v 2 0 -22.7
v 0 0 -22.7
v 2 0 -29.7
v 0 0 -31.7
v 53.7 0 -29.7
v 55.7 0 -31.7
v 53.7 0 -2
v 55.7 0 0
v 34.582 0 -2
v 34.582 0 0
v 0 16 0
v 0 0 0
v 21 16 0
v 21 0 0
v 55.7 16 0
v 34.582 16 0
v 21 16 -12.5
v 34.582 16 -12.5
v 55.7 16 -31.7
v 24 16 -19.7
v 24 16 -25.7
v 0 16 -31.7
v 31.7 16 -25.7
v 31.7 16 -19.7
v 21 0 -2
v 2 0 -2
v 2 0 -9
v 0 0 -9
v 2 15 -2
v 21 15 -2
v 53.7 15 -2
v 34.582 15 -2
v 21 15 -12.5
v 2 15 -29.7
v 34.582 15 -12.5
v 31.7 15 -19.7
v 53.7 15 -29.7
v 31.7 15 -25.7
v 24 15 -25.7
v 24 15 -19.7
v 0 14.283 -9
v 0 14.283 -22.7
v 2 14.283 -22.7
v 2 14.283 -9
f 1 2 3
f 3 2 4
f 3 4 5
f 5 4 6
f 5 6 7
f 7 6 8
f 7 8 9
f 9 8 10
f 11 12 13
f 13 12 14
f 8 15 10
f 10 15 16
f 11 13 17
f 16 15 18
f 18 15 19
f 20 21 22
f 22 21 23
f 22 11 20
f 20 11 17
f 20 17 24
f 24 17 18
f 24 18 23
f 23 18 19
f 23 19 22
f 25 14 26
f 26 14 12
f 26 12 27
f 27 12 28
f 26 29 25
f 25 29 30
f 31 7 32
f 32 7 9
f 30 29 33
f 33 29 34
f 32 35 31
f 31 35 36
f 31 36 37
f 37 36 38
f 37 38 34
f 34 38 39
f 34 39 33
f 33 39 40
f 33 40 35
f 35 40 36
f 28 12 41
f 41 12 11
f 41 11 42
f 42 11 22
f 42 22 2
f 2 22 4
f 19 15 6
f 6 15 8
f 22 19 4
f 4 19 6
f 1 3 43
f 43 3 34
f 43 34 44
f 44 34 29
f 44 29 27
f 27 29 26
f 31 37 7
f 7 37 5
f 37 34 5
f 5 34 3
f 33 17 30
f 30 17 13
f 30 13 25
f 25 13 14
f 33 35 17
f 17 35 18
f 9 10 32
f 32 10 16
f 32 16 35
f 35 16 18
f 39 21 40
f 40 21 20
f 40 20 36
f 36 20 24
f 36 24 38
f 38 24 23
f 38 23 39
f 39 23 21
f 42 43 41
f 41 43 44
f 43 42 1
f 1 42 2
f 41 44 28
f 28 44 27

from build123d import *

# Parameters (mm, degrees)
SKETCH1_W           = 55.7
SKETCH1_H           = 31.7
BOSS_EXTRUDE1_DEPTH = 16
SKETCH3_W           = 51.7
SKETCH3_H           = 27.7
CUT_EXTRUDE2_DEPTH  = 15
CUT_EXTRUDE3_START  = -5
SKETCH4_W           = 13.581579568
SKETCH4_H           = 13.316801047
CUT_EXTRUDE3_DEPTH  = 21
SKETCH5_W           = 7.7
SKETCH5_H           = 6
CUT_EXTRUDE4_DEPTH  = 10
SKETCH7_W           = 13.7
SKETCH7_H           = 14.99631632
CUT_EXTRUDE5_DEPTH  = 10


with BuildPart() as part:
    # Sketch1 → Boss-Extrude1 (new body)
    with BuildSketch(Plane(origin=(0, 0, 0), x_dir=(1, 0, 0), z_dir=(0, 1, 0))):
        with Locations((27.85, 15.85)):
            Rectangle(SKETCH1_W, SKETCH1_H)
    extrude(amount=BOSS_EXTRUDE1_DEPTH)

    # Sketch3 → Cut-Extrude2 (cut)
    with BuildSketch(Plane.XZ):
        with Locations((27.85, -15.85)):
            Rectangle(SKETCH3_W, SKETCH3_H)
    extrude(amount=-CUT_EXTRUDE2_DEPTH, mode=Mode.SUBTRACT)

    # Sketch4 → Cut-Extrude3 (cut, through all)
    with BuildSketch(Plane.XZ.offset(-15).offset(CUT_EXTRUDE3_START)):
        with Locations((27.790789784, -5.841599476)):
            Rectangle(SKETCH4_W, SKETCH4_H)
    extrude(amount=CUT_EXTRUDE3_DEPTH, mode=Mode.SUBTRACT)

    # Sketch5 → Cut-Extrude4 (cut)
    with BuildSketch(Plane.XZ.offset(-15)):
        with Locations((27.85, -22.7)):
            Rectangle(SKETCH5_W, SKETCH5_H)
    extrude(amount=-CUT_EXTRUDE4_DEPTH, mode=Mode.SUBTRACT)

    # Sketch7 → Cut-Extrude5 (cut)
    with BuildSketch(Plane.ZY):
        with Locations((-15.85, 6.784922937)):
            Rectangle(SKETCH7_W, SKETCH7_H)
    extrude(amount=-CUT_EXTRUDE5_DEPTH, mode=Mode.SUBTRACT)


solid = part.part
